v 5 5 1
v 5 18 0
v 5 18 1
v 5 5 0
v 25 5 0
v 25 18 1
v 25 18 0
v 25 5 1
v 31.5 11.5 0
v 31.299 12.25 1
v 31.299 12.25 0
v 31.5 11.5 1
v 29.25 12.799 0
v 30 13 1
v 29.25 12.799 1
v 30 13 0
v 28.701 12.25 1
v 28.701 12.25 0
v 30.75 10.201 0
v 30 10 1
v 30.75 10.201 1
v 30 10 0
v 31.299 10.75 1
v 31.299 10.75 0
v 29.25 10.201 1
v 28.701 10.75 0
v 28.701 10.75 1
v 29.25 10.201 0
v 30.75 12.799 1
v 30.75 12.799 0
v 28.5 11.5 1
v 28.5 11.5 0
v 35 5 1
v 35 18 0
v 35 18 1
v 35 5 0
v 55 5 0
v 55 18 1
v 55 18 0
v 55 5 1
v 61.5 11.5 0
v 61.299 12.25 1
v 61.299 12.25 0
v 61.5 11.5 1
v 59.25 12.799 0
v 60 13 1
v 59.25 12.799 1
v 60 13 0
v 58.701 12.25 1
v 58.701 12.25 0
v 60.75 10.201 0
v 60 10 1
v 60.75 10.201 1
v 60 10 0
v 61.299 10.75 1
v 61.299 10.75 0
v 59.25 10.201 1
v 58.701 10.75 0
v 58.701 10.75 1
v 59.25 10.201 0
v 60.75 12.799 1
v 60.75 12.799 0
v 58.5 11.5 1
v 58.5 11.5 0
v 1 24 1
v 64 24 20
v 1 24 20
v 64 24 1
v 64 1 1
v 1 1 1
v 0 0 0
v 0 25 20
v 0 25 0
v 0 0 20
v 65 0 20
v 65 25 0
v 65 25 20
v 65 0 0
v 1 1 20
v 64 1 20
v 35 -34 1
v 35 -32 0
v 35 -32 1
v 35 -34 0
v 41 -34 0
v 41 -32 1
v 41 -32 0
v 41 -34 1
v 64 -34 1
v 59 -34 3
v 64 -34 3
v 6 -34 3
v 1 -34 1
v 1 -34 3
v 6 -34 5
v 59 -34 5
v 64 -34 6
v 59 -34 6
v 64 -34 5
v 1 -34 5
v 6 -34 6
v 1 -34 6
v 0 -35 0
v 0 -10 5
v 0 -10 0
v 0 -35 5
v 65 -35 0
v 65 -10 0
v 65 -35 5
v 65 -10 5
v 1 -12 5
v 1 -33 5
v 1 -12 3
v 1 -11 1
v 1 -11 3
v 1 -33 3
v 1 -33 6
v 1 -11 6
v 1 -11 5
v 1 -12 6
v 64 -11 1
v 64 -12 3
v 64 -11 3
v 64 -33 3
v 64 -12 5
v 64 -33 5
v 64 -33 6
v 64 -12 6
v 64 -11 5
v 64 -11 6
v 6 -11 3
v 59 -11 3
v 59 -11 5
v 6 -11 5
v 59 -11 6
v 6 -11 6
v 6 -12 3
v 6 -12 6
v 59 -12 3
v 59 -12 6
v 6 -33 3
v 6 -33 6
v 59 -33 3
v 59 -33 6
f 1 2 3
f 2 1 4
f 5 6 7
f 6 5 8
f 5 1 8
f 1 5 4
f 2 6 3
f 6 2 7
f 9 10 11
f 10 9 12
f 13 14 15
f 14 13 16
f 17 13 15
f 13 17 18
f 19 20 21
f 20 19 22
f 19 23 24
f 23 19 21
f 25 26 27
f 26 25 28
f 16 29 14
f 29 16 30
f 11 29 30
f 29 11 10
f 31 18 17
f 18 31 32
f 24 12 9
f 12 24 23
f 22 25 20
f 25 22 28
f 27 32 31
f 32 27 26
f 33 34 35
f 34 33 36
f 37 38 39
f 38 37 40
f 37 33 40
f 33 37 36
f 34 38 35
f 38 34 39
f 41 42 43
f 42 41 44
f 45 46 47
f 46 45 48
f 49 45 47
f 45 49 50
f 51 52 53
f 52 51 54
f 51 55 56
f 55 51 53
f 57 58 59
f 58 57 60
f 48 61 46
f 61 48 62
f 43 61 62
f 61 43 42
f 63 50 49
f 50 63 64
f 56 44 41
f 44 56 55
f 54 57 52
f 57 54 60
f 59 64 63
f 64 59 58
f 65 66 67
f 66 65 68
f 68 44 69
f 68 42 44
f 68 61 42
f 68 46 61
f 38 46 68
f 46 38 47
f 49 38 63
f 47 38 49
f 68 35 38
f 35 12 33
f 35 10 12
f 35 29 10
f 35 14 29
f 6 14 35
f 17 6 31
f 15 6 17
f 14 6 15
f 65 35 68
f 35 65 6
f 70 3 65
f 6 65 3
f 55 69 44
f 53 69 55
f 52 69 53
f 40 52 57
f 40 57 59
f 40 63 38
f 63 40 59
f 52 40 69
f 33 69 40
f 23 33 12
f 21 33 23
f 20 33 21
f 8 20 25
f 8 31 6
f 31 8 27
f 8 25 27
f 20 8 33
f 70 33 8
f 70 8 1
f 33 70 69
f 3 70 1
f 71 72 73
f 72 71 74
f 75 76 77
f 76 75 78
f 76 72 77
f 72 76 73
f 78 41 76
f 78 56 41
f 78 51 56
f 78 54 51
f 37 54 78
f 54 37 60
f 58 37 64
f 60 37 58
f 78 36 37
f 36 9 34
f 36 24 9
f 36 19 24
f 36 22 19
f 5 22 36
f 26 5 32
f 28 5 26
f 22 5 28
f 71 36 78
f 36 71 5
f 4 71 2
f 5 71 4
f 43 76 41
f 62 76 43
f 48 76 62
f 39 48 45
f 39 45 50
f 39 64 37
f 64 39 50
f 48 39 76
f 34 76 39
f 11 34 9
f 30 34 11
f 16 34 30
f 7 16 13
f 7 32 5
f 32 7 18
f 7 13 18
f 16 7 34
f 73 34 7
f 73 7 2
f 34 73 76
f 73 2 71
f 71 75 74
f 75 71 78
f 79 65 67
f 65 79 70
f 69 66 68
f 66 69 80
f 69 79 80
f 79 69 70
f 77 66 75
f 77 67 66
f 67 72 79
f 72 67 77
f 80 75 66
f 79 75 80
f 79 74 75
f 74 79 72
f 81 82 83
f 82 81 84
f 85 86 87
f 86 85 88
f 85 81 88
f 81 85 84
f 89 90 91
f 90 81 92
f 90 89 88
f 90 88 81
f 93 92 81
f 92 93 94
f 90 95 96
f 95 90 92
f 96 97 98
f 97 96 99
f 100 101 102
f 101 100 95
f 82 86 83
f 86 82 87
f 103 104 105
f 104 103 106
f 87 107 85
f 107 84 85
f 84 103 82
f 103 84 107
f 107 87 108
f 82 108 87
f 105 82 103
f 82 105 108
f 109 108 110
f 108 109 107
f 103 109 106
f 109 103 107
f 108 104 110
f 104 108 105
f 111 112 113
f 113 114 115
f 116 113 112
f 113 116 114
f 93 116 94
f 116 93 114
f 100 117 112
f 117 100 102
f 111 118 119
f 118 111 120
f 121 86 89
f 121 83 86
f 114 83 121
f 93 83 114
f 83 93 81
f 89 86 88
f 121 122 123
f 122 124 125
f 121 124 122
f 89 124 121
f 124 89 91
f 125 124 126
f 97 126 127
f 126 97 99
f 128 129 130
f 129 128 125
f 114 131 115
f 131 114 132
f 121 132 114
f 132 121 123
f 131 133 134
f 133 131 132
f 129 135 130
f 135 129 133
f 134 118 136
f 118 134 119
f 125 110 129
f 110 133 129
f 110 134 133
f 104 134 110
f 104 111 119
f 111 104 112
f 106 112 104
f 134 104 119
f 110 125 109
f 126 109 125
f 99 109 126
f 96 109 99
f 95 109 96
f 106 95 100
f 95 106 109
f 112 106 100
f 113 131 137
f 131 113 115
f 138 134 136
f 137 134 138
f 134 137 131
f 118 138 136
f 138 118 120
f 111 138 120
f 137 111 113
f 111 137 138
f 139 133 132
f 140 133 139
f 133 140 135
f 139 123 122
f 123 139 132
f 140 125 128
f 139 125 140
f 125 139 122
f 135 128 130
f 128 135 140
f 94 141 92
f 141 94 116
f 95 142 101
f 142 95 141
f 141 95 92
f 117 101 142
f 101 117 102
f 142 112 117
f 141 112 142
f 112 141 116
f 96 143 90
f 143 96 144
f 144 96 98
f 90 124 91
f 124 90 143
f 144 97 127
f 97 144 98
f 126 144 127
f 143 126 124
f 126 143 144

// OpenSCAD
sw_x=20;
sw_y=13;
sw_z=20;

sh_x=65;
sh_y=25;
sh_z=25;

$fn=12;

module switch() {
    cube([sw_x,sw_y,sw_z]);
}

module led() {
    cylinder(h=sw_z,r=1.5,center=false);
}

module switch_plus_led() {
    switch();
    
    translate([25,sw_y/2,0])
    led();
}

module junk_in_the_box() {
    translate([5,5,-1])
    union() {
        switch_plus_led();
        
        translate([30,0,0])
        switch_plus_led();
    }
    
    translate([35,sh_y-3,1])
    cube([6,2,30]);
}

module shell() {
    difference() {
        cube([sh_x,sh_y,sh_z]);
        
        translate([1,1,1])
        cube([sh_x-2,sh_y-2,sh_z-2]);
    
        junk_in_the_box();
    }
}

module base() {
    difference() {
        shell();
        
        translate([0,0,sh_z-5])
        cube([sh_x,sh_y,5]);
    }
}

module lid() {
    translate([0,-10,25])
    rotate([180,0,0])
    union() {
        difference() {
            shell();
            
            cube([sh_x,sh_y,20]);
        }
           
        translate([1,1,19])
        cube([5,1,3]);
        
        translate([59,1,19])
        cube([5,1,3]);
        
        translate([1,sh_y-2,19])
        cube([5,1,3]);
        
        translate([59,sh_y-2,19])
        cube([5,1,3]);        
    }
}

base();

lid();
